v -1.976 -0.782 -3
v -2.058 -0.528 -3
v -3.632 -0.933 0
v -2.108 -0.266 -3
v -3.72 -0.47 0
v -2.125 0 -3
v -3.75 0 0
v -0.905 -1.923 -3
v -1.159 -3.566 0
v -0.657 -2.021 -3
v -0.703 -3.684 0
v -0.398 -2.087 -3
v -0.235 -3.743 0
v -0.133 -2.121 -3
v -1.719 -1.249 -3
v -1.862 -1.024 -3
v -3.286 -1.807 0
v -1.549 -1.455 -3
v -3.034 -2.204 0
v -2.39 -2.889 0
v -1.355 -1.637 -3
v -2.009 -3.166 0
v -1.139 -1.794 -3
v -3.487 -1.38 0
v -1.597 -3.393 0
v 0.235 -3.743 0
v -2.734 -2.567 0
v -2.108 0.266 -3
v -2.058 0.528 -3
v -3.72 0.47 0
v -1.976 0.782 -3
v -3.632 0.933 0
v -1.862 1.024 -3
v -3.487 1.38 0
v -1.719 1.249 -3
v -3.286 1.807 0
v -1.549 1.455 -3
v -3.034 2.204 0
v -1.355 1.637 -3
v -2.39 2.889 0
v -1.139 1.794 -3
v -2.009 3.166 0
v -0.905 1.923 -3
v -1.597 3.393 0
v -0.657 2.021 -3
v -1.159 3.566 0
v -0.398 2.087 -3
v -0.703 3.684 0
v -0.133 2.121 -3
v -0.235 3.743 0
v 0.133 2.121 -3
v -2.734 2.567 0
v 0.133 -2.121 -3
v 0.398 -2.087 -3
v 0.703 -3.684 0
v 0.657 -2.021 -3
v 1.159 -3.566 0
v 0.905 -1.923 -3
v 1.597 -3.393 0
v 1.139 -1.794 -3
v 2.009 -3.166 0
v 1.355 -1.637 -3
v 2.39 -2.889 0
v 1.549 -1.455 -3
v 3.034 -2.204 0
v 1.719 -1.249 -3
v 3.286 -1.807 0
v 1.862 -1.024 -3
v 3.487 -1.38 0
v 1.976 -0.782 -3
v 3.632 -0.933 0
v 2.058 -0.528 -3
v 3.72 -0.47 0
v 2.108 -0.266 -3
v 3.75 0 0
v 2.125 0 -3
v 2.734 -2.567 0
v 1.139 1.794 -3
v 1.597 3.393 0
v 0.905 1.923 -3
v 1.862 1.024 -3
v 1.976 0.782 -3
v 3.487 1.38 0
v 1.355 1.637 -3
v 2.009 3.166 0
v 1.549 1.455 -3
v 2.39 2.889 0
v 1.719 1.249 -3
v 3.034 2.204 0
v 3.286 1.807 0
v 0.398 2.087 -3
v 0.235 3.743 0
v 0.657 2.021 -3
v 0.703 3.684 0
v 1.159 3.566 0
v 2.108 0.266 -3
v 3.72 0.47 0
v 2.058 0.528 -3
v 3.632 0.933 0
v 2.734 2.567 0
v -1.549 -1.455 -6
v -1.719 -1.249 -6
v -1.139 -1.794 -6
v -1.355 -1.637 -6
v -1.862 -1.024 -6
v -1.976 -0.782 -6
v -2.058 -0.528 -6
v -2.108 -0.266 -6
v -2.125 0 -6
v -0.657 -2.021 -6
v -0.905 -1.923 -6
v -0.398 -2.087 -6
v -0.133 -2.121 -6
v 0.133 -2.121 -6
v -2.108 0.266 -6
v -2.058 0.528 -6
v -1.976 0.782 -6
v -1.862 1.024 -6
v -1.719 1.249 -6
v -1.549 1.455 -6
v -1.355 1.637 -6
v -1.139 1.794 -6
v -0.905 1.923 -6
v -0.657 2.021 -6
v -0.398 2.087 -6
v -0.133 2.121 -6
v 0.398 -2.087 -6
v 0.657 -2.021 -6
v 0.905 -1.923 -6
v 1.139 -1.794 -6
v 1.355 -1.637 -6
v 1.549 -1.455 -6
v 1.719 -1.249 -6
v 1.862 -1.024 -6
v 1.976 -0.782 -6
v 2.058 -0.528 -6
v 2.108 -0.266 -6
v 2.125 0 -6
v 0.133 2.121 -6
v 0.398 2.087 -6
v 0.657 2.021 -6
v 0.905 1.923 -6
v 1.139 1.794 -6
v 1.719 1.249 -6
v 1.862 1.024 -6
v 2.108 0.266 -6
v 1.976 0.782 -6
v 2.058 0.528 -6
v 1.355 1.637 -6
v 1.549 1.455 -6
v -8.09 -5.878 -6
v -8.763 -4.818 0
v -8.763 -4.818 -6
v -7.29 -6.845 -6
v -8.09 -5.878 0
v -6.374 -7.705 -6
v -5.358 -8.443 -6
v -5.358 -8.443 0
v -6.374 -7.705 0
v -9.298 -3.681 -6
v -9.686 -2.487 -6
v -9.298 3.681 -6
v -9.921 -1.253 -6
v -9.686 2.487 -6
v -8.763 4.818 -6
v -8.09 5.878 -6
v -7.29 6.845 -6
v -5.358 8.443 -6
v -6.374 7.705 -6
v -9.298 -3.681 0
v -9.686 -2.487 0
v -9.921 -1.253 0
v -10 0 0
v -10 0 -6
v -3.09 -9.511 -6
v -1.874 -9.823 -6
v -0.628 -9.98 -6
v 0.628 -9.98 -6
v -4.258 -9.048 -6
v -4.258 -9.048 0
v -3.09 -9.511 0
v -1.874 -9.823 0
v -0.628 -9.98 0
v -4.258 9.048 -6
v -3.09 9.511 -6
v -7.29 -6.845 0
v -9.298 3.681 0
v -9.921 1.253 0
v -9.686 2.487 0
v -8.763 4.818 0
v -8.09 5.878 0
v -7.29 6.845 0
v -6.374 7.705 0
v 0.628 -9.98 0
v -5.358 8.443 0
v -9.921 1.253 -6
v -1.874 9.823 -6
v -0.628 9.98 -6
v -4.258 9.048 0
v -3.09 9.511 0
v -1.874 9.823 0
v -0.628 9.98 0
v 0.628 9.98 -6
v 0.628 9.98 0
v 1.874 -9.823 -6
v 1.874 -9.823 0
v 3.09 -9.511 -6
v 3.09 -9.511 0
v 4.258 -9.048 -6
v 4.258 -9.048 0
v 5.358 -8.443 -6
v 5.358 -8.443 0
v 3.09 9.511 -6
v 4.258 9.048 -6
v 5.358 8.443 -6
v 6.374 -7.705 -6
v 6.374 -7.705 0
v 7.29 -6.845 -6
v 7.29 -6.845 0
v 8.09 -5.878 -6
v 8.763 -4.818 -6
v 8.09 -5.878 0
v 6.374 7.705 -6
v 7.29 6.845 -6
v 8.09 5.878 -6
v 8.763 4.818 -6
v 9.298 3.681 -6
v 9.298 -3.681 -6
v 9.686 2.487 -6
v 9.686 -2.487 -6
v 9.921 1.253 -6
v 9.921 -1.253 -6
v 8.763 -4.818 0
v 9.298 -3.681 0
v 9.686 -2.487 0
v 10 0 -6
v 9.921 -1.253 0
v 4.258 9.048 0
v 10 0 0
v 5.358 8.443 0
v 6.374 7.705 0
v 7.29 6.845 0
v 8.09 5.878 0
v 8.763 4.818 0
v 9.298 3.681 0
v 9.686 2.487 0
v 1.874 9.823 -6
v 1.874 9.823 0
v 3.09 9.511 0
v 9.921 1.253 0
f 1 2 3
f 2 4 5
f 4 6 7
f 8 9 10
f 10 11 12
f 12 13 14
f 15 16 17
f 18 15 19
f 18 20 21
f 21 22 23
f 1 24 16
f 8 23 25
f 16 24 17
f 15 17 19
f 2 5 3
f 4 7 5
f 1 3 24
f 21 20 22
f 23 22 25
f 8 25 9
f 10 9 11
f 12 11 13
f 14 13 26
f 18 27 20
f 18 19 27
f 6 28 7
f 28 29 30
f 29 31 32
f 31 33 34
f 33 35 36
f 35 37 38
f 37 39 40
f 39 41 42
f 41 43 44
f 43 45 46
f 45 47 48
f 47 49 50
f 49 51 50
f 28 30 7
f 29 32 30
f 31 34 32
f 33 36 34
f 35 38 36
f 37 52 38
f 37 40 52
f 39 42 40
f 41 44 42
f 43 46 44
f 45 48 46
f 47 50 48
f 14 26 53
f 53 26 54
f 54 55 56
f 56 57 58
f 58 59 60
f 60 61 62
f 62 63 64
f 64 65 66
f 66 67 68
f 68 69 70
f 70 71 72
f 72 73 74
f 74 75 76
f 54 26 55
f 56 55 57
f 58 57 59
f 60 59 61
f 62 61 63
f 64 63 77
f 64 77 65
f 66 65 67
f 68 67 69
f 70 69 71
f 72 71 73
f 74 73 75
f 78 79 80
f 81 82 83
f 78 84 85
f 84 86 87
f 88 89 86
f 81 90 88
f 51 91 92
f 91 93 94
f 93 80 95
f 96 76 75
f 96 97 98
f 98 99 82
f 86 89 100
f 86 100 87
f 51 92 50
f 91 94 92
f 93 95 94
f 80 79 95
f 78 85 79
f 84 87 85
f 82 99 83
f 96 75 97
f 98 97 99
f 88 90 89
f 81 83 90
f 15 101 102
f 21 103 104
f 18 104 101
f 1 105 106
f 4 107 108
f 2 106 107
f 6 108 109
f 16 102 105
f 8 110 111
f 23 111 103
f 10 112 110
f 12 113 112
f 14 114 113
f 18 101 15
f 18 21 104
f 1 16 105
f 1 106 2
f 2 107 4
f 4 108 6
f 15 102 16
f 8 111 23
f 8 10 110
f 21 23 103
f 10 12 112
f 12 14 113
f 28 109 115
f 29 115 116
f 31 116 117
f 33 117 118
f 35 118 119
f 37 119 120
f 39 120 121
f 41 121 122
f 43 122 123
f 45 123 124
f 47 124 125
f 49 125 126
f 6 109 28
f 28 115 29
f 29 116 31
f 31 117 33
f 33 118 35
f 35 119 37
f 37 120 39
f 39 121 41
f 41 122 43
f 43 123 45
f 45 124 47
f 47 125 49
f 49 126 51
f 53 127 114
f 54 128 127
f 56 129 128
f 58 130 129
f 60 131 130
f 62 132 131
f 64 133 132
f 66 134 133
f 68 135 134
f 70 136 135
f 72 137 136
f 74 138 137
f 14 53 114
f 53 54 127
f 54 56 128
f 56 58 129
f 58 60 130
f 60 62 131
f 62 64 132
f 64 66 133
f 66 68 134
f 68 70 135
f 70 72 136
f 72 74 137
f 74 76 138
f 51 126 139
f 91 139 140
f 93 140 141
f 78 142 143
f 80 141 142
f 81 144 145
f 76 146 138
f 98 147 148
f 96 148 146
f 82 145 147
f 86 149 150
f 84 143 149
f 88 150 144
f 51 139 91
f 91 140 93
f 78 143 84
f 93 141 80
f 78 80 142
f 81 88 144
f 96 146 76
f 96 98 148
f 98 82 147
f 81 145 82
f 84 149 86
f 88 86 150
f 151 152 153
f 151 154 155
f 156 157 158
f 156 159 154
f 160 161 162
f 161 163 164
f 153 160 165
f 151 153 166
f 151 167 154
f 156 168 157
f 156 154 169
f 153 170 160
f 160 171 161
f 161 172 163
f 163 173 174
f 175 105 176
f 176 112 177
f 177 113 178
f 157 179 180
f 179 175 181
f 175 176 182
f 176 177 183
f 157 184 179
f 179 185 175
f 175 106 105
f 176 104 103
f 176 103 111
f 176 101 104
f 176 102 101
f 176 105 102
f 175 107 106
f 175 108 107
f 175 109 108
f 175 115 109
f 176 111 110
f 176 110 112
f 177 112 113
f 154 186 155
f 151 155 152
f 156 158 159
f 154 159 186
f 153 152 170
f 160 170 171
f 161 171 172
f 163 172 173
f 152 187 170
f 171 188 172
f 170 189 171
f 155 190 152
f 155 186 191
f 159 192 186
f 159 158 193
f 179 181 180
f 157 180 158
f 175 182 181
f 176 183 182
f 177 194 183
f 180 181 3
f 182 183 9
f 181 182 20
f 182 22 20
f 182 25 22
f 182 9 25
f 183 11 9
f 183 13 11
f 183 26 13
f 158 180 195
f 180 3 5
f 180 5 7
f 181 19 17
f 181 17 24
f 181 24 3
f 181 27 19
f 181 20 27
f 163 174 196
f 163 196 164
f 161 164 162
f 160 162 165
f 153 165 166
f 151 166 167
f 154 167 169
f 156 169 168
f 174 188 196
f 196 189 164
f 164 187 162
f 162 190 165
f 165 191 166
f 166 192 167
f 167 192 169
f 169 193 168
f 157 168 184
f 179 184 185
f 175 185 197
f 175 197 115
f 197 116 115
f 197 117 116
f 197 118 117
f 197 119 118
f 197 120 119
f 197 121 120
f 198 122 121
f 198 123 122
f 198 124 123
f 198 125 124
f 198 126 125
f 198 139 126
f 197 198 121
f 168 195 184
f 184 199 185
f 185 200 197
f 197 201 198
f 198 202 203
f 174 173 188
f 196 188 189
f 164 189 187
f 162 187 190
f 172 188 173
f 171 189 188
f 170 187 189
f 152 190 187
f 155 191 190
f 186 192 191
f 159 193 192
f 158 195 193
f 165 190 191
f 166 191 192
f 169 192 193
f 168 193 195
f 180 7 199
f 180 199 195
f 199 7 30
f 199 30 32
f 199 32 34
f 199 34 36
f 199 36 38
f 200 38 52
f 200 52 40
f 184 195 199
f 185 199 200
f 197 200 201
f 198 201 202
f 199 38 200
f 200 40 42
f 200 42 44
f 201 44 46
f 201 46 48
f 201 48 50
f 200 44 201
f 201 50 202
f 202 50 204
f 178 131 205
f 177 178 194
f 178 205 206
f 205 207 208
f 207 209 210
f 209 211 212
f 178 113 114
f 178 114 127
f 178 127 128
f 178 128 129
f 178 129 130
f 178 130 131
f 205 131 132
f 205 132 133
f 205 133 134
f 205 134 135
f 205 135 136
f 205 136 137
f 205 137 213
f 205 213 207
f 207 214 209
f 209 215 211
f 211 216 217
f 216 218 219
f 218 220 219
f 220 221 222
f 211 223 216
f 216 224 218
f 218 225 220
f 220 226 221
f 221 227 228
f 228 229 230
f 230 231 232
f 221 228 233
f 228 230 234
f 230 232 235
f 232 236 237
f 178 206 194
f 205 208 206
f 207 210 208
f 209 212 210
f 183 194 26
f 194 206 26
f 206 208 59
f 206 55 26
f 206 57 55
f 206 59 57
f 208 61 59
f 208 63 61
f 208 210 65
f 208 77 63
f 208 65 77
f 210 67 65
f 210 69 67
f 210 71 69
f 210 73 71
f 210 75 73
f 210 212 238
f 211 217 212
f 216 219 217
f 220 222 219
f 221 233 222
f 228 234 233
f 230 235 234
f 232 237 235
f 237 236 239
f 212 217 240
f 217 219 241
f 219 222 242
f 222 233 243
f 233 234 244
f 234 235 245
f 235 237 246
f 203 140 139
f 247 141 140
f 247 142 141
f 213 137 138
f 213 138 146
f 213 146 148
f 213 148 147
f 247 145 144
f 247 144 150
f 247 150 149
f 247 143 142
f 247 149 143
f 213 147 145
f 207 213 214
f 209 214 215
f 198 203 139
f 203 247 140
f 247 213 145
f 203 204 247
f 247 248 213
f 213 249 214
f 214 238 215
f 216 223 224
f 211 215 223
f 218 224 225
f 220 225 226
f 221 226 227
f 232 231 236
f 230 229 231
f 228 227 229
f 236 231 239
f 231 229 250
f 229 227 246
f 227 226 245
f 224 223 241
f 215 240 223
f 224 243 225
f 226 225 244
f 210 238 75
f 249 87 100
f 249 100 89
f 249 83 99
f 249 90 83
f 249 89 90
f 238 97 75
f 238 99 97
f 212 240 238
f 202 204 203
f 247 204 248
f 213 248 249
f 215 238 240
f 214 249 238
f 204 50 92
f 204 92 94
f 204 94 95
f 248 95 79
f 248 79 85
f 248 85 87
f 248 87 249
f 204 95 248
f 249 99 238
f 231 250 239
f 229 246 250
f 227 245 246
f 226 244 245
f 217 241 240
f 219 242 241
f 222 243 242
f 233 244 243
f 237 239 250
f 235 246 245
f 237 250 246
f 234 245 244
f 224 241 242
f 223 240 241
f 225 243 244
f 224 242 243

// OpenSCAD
$fn = 50;

difference() {
	union() {
		translate(v = [0, 0, -6.0]) {
			cylinder(h = 6, r = 10.0);
		}
	}
	union() {
		translate(v = [0, 0, 0]) {
			rotate(a = [0, 0, 0]) {
				difference() {
					union() {
						translate(v = [0, 0, -9.0]) {
							cylinder(h = 9, r = 2.0);
						}
						translate(v = [0, 0, -3]) {
							cylinder(h = 3, r1 = 2.125, r2 = 3.75);
						}
						translate(v = [0, 0, -9.0]) {
							cylinder(h = 9, r = 2.125);
						}
						translate(v = [0, 0, -9.0]) {
							cylinder(h = 9, r = 2.0);
						}
					}
					union();
				}
			}
		}
	}
}
